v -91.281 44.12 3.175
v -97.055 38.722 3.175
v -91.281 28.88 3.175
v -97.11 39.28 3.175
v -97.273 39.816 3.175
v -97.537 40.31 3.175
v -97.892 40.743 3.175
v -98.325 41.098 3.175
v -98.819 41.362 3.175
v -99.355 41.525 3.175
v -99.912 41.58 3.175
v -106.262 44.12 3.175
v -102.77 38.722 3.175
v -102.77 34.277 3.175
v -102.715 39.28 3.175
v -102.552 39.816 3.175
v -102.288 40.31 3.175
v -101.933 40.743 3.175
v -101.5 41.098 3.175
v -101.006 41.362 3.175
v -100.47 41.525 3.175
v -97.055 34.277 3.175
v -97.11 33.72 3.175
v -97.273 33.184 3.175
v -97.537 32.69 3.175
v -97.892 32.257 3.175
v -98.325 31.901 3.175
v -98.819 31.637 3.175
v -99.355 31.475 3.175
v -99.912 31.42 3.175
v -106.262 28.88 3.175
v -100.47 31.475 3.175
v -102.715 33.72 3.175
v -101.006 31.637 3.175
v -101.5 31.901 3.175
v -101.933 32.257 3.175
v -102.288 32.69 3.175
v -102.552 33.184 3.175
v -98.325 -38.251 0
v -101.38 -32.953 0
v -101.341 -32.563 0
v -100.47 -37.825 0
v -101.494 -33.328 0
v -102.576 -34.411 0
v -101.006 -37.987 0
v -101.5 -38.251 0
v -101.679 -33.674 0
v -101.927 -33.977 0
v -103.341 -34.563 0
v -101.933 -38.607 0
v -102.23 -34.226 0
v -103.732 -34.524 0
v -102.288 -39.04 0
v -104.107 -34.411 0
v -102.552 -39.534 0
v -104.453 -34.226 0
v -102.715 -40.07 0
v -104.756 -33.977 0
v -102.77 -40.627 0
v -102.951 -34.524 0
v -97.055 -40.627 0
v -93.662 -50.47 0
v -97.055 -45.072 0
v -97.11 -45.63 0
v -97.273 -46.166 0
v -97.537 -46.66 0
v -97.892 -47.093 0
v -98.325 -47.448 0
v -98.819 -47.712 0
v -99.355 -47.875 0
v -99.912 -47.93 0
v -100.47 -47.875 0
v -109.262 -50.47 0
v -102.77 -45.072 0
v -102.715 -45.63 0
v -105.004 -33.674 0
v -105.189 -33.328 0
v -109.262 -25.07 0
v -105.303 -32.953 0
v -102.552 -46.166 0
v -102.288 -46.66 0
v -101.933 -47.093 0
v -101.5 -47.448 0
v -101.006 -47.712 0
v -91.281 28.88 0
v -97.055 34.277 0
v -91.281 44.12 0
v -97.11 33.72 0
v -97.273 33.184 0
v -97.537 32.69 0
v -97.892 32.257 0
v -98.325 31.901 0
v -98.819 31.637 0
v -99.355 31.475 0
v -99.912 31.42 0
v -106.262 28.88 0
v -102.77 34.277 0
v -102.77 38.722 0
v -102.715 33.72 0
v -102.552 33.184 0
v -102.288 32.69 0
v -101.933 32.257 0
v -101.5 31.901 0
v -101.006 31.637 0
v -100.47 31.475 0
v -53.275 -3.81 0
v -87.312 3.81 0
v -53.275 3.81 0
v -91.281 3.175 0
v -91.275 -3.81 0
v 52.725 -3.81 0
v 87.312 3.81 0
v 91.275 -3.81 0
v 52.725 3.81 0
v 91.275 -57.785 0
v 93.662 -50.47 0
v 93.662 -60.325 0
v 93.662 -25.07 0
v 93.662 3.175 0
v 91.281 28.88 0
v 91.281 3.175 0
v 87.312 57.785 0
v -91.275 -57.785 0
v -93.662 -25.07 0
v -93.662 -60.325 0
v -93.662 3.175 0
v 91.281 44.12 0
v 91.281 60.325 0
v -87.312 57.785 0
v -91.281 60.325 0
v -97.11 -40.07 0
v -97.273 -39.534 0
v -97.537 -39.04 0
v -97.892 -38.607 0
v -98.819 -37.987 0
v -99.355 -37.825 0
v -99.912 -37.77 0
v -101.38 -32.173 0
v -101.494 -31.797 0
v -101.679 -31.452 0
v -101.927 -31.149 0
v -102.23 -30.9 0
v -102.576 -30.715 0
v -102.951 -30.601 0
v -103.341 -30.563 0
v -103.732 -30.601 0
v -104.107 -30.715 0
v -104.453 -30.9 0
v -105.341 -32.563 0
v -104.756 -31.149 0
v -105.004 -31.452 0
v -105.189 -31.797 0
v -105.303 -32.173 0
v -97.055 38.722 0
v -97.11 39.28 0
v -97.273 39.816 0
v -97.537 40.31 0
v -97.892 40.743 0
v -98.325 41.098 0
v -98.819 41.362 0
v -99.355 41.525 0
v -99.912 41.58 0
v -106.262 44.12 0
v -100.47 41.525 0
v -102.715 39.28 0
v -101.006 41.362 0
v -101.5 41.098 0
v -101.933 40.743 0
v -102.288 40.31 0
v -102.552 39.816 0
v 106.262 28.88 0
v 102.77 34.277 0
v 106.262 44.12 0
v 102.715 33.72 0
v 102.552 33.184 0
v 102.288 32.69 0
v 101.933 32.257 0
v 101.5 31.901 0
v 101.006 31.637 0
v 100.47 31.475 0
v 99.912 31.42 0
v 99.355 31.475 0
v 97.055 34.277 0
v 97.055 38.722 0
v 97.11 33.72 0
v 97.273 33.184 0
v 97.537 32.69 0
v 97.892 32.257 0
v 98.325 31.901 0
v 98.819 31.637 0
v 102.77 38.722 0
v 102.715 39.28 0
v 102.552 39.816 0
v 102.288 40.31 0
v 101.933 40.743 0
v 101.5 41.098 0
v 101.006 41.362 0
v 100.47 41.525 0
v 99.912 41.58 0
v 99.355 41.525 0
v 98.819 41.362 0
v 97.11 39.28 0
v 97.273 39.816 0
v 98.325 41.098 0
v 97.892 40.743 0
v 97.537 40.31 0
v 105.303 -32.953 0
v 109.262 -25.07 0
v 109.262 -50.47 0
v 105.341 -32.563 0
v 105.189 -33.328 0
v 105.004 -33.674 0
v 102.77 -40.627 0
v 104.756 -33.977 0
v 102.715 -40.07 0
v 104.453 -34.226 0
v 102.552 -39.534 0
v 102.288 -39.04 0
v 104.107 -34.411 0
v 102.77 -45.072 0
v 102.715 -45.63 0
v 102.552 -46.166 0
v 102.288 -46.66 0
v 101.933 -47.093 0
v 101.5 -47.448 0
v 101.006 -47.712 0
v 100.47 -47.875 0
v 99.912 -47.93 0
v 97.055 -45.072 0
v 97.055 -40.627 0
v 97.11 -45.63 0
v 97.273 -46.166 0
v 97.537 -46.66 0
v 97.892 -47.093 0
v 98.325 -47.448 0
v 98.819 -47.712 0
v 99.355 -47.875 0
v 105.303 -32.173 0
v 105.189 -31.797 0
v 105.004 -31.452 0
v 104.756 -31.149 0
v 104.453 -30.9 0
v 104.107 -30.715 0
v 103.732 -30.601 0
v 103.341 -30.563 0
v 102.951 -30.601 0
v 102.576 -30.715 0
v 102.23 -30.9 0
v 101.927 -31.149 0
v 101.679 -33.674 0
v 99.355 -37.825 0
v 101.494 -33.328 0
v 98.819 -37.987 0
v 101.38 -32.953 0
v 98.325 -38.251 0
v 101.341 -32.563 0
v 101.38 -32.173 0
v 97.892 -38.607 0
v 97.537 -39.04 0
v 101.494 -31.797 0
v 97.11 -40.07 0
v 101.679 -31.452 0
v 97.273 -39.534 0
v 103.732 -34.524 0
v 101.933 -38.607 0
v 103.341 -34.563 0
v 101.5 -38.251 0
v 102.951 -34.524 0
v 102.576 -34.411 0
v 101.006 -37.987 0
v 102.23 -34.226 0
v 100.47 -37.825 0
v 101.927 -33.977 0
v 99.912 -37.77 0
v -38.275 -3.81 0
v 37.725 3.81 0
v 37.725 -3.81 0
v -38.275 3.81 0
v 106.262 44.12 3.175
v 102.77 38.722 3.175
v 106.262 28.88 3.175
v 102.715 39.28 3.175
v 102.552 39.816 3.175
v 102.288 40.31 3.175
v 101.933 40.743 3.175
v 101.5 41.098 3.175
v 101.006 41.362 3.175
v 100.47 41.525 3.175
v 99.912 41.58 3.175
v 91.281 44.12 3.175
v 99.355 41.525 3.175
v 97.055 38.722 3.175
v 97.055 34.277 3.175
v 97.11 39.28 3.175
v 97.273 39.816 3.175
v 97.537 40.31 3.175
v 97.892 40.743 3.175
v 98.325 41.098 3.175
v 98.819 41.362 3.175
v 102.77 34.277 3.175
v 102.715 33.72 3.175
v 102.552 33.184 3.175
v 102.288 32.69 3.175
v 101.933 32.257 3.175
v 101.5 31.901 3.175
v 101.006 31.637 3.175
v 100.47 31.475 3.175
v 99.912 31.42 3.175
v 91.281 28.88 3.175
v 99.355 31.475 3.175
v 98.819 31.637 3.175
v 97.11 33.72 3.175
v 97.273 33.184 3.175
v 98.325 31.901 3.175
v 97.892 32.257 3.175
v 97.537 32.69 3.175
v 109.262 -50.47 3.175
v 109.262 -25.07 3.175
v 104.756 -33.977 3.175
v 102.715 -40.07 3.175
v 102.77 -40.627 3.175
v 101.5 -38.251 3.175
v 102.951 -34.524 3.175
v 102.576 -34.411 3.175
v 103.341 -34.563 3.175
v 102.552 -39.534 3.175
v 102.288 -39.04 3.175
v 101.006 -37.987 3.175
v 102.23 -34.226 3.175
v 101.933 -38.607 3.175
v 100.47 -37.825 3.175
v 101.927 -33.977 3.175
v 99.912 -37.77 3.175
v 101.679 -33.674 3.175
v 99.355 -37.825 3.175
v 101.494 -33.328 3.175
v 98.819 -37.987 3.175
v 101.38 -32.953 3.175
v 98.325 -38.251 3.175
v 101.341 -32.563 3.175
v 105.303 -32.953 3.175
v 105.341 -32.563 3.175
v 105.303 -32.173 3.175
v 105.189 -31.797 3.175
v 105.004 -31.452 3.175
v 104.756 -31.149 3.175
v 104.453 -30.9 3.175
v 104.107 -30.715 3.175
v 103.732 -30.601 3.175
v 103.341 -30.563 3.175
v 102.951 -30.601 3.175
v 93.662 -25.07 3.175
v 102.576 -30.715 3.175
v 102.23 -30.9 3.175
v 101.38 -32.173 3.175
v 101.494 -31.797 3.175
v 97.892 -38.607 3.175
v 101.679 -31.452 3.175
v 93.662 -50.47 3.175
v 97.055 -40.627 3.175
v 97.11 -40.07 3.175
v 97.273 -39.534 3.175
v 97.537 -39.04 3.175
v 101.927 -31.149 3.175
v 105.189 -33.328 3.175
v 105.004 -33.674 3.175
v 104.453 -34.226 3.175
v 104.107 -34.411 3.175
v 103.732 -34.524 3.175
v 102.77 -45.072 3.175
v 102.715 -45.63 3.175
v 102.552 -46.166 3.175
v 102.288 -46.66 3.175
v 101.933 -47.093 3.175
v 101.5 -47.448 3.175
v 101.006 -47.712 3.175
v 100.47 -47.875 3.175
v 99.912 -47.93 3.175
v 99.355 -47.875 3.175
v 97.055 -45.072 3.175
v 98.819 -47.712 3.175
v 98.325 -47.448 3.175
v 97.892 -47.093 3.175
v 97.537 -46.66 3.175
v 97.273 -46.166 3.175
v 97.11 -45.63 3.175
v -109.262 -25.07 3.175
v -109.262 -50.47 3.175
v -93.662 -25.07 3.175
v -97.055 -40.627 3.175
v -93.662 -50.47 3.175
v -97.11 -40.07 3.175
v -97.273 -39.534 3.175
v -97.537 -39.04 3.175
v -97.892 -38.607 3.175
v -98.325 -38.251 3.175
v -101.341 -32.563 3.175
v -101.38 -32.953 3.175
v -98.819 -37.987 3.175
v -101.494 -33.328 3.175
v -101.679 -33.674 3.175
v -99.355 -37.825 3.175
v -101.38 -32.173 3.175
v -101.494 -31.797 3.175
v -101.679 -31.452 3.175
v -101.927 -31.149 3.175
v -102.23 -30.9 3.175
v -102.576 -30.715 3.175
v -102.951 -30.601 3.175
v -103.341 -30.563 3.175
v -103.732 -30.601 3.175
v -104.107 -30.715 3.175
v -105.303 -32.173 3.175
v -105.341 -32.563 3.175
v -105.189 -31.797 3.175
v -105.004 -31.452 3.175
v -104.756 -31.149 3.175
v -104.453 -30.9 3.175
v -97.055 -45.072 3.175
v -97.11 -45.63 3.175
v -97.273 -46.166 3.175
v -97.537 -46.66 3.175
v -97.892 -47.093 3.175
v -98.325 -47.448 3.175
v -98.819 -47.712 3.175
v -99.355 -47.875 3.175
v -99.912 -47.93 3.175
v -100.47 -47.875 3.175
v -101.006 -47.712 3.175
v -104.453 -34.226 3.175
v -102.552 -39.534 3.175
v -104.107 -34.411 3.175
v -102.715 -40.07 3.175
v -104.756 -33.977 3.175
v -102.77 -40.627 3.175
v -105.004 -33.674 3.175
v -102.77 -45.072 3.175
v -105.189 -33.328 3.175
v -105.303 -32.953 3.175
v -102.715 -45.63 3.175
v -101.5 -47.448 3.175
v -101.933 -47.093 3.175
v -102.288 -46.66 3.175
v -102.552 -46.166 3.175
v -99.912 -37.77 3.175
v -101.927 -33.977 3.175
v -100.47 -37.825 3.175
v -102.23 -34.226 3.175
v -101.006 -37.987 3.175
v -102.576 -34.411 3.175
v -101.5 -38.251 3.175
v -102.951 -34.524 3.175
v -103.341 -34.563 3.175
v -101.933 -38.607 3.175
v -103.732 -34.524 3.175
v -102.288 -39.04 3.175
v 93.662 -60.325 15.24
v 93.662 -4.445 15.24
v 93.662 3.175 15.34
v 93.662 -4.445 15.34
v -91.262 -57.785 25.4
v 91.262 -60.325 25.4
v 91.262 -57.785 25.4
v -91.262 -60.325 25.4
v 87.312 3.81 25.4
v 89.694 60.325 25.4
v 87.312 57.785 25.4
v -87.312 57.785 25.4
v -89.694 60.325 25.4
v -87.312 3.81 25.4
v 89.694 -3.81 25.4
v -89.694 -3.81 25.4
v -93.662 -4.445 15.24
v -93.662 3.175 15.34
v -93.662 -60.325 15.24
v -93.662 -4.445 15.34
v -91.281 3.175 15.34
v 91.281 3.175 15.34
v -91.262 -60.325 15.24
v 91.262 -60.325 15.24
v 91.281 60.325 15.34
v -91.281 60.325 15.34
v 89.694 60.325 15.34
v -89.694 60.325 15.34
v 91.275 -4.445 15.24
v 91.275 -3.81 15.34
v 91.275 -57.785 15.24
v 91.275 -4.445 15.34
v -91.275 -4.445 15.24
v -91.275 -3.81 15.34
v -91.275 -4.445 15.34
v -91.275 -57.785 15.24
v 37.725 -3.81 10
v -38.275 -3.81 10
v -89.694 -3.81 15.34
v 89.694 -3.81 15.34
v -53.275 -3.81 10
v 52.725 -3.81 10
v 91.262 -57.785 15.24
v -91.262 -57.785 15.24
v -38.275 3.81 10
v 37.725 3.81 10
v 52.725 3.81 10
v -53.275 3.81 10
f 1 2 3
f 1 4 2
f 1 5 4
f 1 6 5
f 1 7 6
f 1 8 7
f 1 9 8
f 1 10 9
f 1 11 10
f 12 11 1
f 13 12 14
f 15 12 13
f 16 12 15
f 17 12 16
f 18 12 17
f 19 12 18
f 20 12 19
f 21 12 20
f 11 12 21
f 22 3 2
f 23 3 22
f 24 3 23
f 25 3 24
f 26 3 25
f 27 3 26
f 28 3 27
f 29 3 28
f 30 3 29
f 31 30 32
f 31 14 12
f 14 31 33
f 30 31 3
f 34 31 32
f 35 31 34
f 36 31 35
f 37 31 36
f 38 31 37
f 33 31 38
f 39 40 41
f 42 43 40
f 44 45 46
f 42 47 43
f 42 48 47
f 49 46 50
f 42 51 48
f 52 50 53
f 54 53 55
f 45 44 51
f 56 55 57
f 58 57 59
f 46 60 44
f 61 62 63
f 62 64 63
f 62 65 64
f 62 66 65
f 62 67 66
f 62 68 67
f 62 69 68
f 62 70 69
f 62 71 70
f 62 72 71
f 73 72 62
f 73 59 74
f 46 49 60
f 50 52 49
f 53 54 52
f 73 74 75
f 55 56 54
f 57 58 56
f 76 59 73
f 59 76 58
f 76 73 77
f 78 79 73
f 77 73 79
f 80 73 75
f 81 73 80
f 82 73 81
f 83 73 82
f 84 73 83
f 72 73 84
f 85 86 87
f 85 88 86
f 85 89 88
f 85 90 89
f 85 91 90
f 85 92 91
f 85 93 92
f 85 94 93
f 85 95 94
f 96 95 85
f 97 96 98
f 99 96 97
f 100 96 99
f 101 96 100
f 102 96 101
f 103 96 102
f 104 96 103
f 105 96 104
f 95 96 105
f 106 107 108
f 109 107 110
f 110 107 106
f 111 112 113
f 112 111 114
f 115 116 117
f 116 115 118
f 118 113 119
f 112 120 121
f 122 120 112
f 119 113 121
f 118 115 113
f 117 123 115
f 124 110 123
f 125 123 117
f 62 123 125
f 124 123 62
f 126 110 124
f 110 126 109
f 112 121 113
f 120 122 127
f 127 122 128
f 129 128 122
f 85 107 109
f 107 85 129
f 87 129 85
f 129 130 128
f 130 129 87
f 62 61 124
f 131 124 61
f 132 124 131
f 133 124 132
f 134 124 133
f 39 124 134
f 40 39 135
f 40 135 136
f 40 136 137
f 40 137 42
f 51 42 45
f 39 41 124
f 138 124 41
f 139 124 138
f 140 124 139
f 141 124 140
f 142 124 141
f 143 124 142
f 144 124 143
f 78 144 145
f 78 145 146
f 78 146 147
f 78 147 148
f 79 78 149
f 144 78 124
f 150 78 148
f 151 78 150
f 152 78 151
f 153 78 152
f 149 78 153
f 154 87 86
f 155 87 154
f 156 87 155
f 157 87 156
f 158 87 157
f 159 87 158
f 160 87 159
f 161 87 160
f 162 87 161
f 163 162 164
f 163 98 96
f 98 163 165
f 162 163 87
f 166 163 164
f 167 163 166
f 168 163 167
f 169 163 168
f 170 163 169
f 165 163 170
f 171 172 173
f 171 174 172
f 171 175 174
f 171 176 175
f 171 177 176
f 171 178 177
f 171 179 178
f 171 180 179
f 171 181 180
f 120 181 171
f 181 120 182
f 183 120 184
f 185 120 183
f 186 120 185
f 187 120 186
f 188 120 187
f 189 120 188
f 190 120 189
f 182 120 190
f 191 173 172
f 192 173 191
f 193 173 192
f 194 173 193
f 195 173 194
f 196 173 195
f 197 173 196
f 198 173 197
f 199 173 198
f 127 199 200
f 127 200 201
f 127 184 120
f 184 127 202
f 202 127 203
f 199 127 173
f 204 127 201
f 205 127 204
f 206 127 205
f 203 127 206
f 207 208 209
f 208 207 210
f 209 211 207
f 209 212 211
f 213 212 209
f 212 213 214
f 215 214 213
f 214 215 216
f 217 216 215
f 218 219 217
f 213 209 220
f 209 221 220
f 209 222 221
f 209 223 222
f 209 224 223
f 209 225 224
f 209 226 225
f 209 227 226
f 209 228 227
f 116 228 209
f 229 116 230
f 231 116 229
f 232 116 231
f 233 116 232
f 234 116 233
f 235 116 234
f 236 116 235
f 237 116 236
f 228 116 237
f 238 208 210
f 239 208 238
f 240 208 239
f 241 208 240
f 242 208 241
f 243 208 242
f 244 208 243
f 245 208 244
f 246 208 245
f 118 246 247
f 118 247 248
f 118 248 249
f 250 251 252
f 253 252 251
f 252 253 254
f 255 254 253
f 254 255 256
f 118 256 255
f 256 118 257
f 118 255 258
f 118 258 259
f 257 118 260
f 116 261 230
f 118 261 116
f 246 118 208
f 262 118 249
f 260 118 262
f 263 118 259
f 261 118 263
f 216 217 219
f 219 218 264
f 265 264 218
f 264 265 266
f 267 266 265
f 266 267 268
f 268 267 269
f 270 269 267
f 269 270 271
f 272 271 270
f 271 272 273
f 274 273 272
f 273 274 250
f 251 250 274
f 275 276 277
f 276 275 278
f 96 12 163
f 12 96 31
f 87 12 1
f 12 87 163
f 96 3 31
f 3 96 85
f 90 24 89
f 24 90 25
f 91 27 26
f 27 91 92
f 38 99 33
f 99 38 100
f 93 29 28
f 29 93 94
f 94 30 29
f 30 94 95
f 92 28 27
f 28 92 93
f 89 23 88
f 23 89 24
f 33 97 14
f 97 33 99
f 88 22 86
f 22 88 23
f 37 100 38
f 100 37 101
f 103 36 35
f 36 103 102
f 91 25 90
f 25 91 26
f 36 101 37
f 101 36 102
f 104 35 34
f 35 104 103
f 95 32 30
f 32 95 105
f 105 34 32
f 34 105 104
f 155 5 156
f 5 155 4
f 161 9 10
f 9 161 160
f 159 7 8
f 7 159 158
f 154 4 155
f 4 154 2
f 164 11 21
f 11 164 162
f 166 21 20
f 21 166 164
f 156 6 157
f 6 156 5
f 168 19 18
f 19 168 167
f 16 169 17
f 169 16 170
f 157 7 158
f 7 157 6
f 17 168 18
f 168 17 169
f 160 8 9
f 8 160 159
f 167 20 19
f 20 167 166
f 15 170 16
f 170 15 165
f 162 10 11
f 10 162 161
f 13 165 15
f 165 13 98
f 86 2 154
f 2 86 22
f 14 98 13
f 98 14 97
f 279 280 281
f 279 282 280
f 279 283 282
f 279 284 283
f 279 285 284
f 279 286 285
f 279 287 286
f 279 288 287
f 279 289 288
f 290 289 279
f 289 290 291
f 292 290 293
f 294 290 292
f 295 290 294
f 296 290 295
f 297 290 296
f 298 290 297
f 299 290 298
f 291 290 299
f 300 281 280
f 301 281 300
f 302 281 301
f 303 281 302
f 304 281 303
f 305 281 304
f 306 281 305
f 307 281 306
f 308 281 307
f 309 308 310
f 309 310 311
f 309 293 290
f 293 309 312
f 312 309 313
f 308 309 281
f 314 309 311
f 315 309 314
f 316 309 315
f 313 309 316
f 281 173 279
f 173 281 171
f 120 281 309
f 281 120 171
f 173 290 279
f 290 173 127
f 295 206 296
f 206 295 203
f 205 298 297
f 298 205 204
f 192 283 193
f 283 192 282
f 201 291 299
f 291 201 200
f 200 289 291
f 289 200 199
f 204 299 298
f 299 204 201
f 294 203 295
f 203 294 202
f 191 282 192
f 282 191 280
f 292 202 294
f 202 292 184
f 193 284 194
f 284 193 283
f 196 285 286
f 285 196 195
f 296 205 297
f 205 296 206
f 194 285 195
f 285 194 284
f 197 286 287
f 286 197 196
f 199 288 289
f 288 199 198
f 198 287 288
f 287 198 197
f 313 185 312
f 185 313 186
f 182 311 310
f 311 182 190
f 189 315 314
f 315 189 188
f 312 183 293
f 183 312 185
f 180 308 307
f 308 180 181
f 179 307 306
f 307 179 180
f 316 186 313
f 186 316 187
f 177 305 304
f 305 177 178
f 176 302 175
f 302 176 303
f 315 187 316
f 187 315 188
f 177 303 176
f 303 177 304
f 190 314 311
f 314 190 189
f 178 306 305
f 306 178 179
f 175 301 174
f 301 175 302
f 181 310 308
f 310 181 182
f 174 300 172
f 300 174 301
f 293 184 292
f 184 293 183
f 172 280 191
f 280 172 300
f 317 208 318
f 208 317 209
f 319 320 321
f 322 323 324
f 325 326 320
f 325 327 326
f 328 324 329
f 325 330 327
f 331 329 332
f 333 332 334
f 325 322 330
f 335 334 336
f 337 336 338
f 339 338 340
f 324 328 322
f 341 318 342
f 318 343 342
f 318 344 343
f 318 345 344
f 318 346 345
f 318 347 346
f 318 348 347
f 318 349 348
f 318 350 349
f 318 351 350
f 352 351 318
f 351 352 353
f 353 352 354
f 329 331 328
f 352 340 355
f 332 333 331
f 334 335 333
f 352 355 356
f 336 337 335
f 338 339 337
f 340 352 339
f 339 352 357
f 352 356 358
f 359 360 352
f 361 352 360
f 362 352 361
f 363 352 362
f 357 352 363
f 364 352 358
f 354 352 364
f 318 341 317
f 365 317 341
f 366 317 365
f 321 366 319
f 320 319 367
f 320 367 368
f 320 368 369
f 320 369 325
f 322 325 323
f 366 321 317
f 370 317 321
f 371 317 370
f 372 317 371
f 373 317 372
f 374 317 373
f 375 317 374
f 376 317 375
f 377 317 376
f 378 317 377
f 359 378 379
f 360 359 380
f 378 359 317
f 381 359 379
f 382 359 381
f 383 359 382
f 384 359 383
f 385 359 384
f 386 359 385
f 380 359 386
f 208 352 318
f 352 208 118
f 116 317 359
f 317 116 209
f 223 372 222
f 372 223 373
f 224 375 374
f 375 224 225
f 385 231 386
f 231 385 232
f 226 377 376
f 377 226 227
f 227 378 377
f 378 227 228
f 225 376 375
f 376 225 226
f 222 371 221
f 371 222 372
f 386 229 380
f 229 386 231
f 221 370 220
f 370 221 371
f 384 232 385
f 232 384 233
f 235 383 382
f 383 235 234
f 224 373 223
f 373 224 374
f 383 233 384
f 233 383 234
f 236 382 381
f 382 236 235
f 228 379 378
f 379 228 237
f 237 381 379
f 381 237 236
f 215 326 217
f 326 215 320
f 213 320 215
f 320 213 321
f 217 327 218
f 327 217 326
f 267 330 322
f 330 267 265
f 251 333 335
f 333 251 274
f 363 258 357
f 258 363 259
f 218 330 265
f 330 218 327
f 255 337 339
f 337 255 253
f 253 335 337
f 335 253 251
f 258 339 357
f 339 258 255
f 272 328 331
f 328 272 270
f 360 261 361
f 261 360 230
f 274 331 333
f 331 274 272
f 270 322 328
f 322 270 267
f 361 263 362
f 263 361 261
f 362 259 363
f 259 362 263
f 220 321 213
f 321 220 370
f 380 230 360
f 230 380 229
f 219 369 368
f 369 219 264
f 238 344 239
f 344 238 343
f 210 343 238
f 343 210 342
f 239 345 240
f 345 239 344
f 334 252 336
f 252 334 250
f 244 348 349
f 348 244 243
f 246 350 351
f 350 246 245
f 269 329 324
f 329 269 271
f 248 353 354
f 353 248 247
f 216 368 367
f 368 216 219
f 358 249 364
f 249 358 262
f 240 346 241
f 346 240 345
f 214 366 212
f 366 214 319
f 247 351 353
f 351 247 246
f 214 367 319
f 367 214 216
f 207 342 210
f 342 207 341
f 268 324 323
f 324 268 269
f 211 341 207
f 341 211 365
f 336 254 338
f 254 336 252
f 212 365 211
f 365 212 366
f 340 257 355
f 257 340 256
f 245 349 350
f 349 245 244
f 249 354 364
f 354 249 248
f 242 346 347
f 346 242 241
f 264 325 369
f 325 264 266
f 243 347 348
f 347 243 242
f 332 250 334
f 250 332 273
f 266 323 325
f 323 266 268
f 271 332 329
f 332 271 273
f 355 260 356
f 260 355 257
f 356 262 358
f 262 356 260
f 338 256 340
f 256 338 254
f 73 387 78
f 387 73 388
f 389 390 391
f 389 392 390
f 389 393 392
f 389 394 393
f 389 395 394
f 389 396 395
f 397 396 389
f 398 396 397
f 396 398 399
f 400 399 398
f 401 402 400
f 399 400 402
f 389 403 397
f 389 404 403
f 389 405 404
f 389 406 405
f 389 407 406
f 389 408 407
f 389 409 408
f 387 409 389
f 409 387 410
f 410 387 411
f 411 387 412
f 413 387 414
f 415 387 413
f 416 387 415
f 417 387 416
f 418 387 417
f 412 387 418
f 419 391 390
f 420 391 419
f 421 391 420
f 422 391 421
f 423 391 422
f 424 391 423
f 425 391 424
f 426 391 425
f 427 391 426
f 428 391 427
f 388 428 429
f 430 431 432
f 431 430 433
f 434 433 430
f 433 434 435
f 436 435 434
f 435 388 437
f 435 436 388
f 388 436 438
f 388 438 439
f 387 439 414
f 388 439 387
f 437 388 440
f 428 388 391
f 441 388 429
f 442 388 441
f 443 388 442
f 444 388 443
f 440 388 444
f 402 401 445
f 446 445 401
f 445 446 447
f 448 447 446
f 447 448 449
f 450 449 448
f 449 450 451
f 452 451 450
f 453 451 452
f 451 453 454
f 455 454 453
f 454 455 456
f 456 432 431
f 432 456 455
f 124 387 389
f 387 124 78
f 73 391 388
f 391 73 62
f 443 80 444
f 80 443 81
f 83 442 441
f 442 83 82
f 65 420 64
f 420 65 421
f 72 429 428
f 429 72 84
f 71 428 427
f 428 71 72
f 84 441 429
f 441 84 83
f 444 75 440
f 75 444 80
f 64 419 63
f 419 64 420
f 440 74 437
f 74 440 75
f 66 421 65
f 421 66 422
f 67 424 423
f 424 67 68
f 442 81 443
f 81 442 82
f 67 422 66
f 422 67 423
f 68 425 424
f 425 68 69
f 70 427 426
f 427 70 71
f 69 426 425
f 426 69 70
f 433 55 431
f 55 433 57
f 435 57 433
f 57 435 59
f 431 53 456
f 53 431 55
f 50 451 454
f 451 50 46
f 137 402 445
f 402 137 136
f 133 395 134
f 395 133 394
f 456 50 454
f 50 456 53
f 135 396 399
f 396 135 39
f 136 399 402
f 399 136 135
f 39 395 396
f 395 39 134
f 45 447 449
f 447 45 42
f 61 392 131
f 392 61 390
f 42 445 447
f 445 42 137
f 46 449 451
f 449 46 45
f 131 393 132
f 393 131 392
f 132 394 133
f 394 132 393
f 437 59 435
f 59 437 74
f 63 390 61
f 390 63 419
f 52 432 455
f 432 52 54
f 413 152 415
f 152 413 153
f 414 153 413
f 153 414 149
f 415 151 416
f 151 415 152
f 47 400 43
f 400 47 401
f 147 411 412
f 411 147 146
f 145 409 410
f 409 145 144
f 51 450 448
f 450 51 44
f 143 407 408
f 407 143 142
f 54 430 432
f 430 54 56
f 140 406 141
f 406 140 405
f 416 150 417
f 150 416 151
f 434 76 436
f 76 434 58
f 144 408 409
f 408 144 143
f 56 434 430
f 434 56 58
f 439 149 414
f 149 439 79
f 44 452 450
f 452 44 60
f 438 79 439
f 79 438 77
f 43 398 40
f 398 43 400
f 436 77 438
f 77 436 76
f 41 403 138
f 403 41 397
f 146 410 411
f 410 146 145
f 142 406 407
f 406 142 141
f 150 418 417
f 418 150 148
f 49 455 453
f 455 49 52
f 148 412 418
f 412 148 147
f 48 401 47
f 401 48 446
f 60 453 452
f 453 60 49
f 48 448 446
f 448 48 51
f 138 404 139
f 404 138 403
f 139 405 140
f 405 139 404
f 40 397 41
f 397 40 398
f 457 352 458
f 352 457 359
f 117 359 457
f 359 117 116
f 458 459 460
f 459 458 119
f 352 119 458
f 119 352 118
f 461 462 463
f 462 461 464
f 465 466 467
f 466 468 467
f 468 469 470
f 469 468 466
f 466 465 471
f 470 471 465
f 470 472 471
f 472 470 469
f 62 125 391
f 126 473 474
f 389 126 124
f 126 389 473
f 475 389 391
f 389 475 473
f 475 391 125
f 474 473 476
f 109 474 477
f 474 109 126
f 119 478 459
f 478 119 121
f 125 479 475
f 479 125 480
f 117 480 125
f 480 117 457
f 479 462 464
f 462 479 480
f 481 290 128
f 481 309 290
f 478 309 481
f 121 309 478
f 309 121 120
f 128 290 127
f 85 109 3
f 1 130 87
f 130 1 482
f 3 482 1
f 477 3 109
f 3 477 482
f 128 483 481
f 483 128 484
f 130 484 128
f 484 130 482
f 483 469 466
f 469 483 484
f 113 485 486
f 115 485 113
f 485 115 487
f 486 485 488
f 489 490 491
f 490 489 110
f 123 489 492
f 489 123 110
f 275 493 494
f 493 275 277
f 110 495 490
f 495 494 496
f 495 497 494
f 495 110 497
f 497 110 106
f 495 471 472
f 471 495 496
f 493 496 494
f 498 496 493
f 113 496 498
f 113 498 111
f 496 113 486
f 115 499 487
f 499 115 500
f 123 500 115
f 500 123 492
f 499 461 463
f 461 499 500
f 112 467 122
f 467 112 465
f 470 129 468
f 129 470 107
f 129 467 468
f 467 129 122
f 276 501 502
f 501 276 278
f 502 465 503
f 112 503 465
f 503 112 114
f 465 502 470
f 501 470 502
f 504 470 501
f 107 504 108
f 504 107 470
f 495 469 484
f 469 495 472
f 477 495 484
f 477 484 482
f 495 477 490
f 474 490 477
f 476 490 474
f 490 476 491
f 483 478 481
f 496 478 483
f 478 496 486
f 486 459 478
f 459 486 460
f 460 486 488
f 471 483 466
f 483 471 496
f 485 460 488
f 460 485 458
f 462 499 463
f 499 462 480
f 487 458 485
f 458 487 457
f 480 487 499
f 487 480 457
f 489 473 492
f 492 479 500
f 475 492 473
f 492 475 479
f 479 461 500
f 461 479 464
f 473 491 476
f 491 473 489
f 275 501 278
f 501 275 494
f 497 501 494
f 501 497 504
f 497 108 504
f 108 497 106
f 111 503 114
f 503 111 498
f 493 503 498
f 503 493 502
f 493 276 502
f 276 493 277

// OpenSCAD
//
// Miata NA dual-opening DIN mount
// reboot with more attention to detal
//
// note that bottom opening is narrower
//

mm = 25.4;
e = 0.1;
$fn = 32;

thin = 0;

// DIN opening 
din_w = 7.187*mm;		/* width - upper opening for radio */
din_w2 = 6.875*mm;
din_h = 2.125*mm;		/* height */
din_d = 1*mm;		/* depth */
// din_d = 0.5*mm;		/* fast test depth */

din_thk = 0.1*mm;		/* DIN wall thickness */

overall_h = 4.75*mm;
overall_w = 7.375*mm;

lower_w = 7.1875*mm;		/* lower bay overall width 7-3/16 */
lower_h = 2.25*mm;		/* lower bay height of narrower frame portion */

lower_w2 = 7.0625*mm;		/* bottom narrowing to fit panel opening */

upper_h = overall_h-lower_h;
side_cut_d = 0.4*mm;

w_diff = overall_w-lower_w;

frame_thk = 0.125*mm;

din_hgt = din_h + 2*din_thk;
din_wid = din_w + 2*din_thk;

din_c2c = overall_h-din_hgt;

// supports
supp_x = 1.625*mm;
supp_w = 0.5*mm;
supp_h = din_thk;
supp_l = 1*mm;
//supp_l = 0.35*mm;		/* fast test */

// bracket 
bkt_w = 0.5*mm;
bkt_h = 0.6*mm;
bkt_t = 0.125*mm;
bkt_hole = 0.225*mm;
bkt_slot = 0.4*mm-bkt_hole;

// upper bracket
ubkt_w = 0.5*mm;
ubkt_h = 1.0*mm;
ubkt_t = 0.125*mm;

// top_bkt = 1.063*mm;
top_bkt = 0.938*mm;
bot_bkt = 0.688*mm;

// DIN opening specified with, height, centered
module din_open( wid, hgt) {
     translate( [-wid/2, -hgt/2, -e]) {
	  cube( [wid, hgt, din_d+2*e]);
     }
}

// Two openings centered
module din_open2() {
     translate( [0, -din_c2c/2, 0]) {
	  din_open( din_w, din_h);
	  translate( [0, din_c2c, 0]) din_open( din_w2, din_h);
     }
}

// outer frame, solid, centered
module outer() {
     translate( [-overall_w/2, -overall_h/2, 0]) {
	  cube( [overall_w, upper_h, din_d]);
	  translate( [(overall_w-lower_w)/2, upper_h, 0])
	       cube( [lower_w, lower_h, din_d]);
     }
}

// one support
module support() {
     cube( [supp_w, supp_h, supp_l]);
}

// left, right and bottom supports
module supports() {
     translate( [-overall_w/2+supp_x-supp_w/2, overall_h/2-supp_h, -supp_l+e])
	  support();
     translate( [overall_w/2-supp_x-supp_w/2, overall_h/2-supp_h, -supp_l+e])
	  support();
     translate( [-overall_w/2+din_thk, overall_h/2-top_bkt-bkt_h/2, -supp_l+e])
	  rotate([0,0,90]) support();
     translate( [overall_w/2-din_thk+supp_h, overall_h/2-top_bkt-bkt_h/2, -supp_l+e])
	  rotate([0,0,90]) support();
}

// one mounting bracket with oval hole
module bracket( d) {
     difference() {
	  translate( [-bkt_w/2, -bkt_h/2, 0]) cube( [bkt_w+d, bkt_h, bkt_t]);
	  translate( [0, -bkt_slot/2, -e]) cylinder( d=0.225*mm, h=bkt_t+2*e);
	  translate( [0, bkt_slot/2, -e]) cylinder( d=0.225*mm, h=bkt_t+2*e);
	  translate( [-bkt_hole/2, -bkt_slot/2, -e]) cube( [bkt_hole, bkt_slot, bkt_t+2*e]);
     }
}

// upper bracket
module up_bracket( d) {
     difference() {
	  translate( [-ubkt_w/2, -bkt_h/2, 0]) cube( [ubkt_w+d, ubkt_h, ubkt_t]);
	  // slot for reference
	  translate( [0, -bkt_slot/2, -e]) cylinder( d=0.225*mm, h=bkt_t+2*e);
	  translate( [0, bkt_slot/2, -e]) cylinder( d=0.225*mm, h=bkt_t+2*e);
	  translate( [-bkt_hole/2, -bkt_slot/2, -e]) cube( [bkt_hole, bkt_slot, bkt_t+2*e]);
	  // new mounting hole
	  translate( [0.135*mm, 0.405*mm, -e]) color("red") cylinder( d=4, h=10);
     }
}


// four mounting brackets
module brackets() {
     translate( [-overall_w/2-bkt_w/2+e, overall_h/2-top_bkt, 0]) bracket(3);
     translate( [overall_w/2+bkt_w/2-e, overall_h/2-top_bkt, 0]) rotate( [0,0,180]) bracket(3);

//     translate( [-overall_w/2-bkt_w/2+e, -overall_h/2+bot_bkt, 0]) up_bracket(0);
     translate( [overall_w/2+bkt_w/2-e, -overall_h/2+bot_bkt, 0]) up_bracket(3);
     mirror( [1, 0, 0])     translate( [overall_w/2+bkt_w/2-e, -overall_h/2+bot_bkt, 0]) up_bracket(3);
}

// side cuts next to top
module side_cut() {
     translate( [overall_w/2+7, -din_c2c+frame_thk-5, din_d-side_cut_d]) {
	  rotate( [0, 0, 90]) {
	       cube( [din_h+5, 9.4, side_cut_d+e]);
	  }
     }
}

module side_cuts() {
     side_cut();
     mirror( [1, 0, 0]) side_cut();
}

module narrow_cut() {
     translate( [-lower_w/2-5, frame_thk-8, din_d-side_cut_d+e])
	  cube( [(lower_w-lower_w2)/2+5, din_h+20, side_cut_d]);
}

module narrow() {
     narrow_cut();
     mirror( [1, 0, 0]) narrow_cut();
}

cut1_x = 38;
cut1_dx = 15;

cut2_x = 129;
cut2_dx = 15;

// din_cut = 15;
din_cut = 10;

module mount() {

// frame with DIN openings
     difference() {
	  outer();
	  din_open2();
	  side_cuts();
	  narrow();
	  translate( [-din_w/2+cut1_x, -10, -20+din_cut]) cube( [cut1_dx, 20, 20]);
	  translate( [-din_w/2+cut2_x, -10, -20+din_cut]) cube( [cut2_dx, 20, 20]);
     }

     brackets();
// supports();
}

ow = overall_w+40;
oh = overall_h+40;

// slice thin
if( thin == 1) {
     difference() {
	  mount();
	  translate( [-ow/2-e, -oh/2-e, 1.6])
	       cube( [ow+2*e, oh+3*e, 30]);
     }
} else {
     mount();
}
